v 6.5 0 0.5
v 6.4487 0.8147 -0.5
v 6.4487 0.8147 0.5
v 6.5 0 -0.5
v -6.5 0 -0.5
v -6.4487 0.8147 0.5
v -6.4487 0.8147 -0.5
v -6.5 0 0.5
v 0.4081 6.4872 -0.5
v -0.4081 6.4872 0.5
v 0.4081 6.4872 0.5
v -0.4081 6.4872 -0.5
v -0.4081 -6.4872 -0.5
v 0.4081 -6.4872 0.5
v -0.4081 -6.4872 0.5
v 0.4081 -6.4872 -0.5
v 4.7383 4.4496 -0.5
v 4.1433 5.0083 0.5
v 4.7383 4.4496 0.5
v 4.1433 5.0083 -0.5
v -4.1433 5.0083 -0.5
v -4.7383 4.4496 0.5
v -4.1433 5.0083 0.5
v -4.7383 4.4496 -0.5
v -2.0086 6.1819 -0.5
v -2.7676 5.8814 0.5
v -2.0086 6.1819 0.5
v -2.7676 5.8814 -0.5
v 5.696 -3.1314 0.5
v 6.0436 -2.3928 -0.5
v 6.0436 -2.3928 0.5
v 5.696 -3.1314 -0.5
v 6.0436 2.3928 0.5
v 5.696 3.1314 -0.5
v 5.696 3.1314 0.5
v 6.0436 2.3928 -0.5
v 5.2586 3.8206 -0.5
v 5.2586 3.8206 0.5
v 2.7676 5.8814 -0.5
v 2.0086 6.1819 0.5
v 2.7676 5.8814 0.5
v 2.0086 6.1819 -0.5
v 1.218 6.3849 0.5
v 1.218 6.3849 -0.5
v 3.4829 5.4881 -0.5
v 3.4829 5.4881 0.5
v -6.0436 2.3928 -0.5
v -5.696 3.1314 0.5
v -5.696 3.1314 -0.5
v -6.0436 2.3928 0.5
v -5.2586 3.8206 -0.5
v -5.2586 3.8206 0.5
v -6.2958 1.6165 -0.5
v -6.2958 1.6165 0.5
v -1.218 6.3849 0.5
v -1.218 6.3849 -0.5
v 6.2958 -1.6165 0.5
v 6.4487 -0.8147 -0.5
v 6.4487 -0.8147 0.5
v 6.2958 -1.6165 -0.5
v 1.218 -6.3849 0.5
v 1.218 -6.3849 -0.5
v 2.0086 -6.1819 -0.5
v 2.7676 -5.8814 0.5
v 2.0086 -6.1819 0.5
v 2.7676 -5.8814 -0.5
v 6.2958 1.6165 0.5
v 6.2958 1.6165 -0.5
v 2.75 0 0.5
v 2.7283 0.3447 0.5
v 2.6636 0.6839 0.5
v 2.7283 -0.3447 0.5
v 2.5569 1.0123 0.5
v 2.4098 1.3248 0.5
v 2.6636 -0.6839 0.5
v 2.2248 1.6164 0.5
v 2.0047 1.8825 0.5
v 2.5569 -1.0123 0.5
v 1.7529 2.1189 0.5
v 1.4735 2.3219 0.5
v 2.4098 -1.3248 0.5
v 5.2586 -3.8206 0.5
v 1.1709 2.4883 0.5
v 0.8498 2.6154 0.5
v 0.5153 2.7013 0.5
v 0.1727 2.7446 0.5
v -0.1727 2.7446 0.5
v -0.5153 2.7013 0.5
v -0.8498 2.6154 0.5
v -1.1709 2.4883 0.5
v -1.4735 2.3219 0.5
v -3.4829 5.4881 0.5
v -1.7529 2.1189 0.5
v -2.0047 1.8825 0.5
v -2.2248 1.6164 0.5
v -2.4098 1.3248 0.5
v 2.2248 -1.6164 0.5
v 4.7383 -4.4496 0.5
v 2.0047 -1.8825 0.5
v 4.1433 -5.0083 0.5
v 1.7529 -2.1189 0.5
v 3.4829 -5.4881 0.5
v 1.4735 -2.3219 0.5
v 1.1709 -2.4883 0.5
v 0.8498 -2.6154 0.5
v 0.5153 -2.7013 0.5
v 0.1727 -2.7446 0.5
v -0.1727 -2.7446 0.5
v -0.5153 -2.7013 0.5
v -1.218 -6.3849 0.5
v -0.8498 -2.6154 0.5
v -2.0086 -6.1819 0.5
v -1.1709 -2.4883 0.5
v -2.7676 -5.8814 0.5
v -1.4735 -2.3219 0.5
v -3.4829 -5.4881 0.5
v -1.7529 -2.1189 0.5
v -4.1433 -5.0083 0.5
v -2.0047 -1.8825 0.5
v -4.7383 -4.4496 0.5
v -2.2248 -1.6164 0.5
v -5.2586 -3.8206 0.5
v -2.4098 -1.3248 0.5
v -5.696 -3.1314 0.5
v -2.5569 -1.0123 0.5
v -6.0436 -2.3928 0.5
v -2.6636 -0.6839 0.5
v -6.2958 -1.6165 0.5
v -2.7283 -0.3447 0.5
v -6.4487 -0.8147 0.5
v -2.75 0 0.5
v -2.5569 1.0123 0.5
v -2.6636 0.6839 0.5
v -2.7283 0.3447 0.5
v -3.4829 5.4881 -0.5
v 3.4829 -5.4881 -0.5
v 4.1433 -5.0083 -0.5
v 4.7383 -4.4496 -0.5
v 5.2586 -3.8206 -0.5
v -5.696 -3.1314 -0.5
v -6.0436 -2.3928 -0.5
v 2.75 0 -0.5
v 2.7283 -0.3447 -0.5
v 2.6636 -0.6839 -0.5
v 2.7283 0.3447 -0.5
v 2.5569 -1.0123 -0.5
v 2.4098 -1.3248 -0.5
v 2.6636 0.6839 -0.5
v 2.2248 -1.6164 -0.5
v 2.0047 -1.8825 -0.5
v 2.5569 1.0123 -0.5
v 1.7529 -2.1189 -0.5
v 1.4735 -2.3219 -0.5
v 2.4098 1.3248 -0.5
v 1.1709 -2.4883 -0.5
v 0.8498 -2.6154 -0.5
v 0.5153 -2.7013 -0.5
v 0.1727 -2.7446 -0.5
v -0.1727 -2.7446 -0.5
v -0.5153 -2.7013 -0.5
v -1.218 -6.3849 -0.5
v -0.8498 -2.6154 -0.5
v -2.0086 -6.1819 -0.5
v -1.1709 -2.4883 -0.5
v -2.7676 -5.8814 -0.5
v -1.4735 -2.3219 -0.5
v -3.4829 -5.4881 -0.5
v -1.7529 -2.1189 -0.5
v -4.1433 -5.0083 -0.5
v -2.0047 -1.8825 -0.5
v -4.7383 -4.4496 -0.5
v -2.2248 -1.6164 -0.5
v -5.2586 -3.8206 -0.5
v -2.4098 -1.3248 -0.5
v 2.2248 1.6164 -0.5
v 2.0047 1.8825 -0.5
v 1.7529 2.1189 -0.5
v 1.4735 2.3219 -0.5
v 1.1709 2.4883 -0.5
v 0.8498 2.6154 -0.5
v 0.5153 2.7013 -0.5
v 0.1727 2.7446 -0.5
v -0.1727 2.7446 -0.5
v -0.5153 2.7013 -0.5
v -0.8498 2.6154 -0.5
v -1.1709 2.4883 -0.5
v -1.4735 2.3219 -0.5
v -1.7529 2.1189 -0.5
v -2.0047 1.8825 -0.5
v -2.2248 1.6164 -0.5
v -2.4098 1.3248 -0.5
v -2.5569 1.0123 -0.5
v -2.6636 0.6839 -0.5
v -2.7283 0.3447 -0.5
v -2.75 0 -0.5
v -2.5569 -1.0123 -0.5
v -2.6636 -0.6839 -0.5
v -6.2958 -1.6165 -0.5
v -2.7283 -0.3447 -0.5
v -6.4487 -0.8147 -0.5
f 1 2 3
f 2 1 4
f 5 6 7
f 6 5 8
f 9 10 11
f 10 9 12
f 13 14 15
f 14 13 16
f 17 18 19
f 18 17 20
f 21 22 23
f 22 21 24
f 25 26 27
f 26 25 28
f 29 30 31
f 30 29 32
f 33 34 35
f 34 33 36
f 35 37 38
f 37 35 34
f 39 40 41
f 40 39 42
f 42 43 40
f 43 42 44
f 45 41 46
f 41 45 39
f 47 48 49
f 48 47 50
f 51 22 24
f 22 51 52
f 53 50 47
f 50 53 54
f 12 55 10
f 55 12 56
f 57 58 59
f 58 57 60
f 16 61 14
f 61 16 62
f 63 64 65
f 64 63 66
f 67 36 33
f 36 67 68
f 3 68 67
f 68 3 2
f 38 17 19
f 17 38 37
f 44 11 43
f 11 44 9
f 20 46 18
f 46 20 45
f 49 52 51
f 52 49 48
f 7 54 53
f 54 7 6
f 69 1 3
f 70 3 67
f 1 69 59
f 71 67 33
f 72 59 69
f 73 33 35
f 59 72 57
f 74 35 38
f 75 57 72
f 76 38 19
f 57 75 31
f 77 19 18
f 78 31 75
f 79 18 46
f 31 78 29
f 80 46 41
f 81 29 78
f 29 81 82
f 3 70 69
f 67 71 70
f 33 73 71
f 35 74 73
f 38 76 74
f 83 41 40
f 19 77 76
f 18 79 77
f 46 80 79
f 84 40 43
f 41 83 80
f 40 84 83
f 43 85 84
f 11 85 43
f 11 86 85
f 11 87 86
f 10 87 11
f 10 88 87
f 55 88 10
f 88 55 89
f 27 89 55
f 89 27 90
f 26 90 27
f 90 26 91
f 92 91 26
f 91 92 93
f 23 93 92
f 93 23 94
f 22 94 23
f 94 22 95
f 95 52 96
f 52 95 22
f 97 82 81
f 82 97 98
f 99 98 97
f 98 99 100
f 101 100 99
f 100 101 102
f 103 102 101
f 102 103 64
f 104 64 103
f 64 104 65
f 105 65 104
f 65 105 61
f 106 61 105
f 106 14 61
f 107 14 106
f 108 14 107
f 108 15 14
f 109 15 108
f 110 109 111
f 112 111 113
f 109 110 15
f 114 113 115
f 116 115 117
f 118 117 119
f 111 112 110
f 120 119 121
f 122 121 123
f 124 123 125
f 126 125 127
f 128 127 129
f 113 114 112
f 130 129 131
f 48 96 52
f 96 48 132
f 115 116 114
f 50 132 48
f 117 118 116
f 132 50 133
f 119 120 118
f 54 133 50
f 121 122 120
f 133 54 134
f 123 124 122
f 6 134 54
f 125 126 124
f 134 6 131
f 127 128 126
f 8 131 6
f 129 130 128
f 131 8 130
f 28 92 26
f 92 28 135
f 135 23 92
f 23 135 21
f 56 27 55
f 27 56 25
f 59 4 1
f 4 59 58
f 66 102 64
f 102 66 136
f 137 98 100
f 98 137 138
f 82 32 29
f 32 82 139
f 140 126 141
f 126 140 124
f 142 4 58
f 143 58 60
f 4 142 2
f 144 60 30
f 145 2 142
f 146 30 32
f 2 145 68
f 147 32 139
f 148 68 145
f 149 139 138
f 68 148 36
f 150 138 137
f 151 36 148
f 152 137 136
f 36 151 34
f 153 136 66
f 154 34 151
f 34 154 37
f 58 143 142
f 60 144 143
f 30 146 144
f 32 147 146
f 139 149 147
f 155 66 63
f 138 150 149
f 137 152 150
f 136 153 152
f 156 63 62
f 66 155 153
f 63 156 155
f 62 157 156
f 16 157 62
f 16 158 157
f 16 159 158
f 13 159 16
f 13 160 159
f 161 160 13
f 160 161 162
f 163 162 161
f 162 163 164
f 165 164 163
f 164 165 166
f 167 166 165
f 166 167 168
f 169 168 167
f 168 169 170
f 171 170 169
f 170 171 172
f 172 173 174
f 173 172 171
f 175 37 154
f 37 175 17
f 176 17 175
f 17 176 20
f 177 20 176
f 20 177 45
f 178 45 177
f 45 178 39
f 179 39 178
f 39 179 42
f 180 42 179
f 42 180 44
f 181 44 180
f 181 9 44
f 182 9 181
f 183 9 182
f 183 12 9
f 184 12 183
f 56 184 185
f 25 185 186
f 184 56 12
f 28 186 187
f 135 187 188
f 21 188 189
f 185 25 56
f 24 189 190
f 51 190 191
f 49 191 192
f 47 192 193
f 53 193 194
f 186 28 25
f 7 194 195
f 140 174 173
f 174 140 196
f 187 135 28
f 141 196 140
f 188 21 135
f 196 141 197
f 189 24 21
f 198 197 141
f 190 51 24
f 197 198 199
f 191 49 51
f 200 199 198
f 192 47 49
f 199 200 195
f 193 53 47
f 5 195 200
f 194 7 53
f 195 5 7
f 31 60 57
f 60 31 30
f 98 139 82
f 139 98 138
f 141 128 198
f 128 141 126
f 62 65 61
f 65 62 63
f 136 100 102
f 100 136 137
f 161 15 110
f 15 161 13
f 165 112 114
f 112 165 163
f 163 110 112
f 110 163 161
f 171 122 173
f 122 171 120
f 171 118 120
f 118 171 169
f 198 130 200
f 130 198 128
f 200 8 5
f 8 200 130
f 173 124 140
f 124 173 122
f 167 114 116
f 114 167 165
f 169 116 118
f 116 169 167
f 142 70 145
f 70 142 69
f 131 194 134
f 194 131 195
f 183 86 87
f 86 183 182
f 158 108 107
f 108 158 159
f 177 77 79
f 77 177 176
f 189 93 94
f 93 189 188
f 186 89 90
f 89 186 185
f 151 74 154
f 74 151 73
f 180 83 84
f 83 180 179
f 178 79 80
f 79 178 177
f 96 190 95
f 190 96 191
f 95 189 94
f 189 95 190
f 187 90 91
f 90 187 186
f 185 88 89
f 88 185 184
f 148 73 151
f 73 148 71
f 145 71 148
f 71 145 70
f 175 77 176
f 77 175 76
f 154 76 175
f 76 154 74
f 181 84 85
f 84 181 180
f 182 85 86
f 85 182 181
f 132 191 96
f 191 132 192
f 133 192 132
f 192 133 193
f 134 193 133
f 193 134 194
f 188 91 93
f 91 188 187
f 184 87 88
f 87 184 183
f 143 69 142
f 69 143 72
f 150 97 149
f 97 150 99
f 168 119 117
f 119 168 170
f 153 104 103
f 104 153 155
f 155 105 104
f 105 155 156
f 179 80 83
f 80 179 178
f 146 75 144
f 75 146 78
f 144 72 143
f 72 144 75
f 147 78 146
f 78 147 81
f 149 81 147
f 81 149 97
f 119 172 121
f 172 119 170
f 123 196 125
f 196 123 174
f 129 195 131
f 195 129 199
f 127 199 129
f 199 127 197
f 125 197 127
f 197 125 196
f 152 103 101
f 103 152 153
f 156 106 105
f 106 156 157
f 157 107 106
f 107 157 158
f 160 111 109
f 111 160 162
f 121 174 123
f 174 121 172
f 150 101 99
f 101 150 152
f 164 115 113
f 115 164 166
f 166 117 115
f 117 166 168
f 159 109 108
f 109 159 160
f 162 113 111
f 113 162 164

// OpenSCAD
$fn = 50;


difference() {
	union() {
		translate(v = [0, 0, -0.5000000000]) {
			cylinder(h = 1, r = 6.5000000000);
		}
	}
	union() {
		translate(v = [0, 0, -100.0000000000]) {
			cylinder(h = 200, r = 2.7500000000);
		}
	}
}
